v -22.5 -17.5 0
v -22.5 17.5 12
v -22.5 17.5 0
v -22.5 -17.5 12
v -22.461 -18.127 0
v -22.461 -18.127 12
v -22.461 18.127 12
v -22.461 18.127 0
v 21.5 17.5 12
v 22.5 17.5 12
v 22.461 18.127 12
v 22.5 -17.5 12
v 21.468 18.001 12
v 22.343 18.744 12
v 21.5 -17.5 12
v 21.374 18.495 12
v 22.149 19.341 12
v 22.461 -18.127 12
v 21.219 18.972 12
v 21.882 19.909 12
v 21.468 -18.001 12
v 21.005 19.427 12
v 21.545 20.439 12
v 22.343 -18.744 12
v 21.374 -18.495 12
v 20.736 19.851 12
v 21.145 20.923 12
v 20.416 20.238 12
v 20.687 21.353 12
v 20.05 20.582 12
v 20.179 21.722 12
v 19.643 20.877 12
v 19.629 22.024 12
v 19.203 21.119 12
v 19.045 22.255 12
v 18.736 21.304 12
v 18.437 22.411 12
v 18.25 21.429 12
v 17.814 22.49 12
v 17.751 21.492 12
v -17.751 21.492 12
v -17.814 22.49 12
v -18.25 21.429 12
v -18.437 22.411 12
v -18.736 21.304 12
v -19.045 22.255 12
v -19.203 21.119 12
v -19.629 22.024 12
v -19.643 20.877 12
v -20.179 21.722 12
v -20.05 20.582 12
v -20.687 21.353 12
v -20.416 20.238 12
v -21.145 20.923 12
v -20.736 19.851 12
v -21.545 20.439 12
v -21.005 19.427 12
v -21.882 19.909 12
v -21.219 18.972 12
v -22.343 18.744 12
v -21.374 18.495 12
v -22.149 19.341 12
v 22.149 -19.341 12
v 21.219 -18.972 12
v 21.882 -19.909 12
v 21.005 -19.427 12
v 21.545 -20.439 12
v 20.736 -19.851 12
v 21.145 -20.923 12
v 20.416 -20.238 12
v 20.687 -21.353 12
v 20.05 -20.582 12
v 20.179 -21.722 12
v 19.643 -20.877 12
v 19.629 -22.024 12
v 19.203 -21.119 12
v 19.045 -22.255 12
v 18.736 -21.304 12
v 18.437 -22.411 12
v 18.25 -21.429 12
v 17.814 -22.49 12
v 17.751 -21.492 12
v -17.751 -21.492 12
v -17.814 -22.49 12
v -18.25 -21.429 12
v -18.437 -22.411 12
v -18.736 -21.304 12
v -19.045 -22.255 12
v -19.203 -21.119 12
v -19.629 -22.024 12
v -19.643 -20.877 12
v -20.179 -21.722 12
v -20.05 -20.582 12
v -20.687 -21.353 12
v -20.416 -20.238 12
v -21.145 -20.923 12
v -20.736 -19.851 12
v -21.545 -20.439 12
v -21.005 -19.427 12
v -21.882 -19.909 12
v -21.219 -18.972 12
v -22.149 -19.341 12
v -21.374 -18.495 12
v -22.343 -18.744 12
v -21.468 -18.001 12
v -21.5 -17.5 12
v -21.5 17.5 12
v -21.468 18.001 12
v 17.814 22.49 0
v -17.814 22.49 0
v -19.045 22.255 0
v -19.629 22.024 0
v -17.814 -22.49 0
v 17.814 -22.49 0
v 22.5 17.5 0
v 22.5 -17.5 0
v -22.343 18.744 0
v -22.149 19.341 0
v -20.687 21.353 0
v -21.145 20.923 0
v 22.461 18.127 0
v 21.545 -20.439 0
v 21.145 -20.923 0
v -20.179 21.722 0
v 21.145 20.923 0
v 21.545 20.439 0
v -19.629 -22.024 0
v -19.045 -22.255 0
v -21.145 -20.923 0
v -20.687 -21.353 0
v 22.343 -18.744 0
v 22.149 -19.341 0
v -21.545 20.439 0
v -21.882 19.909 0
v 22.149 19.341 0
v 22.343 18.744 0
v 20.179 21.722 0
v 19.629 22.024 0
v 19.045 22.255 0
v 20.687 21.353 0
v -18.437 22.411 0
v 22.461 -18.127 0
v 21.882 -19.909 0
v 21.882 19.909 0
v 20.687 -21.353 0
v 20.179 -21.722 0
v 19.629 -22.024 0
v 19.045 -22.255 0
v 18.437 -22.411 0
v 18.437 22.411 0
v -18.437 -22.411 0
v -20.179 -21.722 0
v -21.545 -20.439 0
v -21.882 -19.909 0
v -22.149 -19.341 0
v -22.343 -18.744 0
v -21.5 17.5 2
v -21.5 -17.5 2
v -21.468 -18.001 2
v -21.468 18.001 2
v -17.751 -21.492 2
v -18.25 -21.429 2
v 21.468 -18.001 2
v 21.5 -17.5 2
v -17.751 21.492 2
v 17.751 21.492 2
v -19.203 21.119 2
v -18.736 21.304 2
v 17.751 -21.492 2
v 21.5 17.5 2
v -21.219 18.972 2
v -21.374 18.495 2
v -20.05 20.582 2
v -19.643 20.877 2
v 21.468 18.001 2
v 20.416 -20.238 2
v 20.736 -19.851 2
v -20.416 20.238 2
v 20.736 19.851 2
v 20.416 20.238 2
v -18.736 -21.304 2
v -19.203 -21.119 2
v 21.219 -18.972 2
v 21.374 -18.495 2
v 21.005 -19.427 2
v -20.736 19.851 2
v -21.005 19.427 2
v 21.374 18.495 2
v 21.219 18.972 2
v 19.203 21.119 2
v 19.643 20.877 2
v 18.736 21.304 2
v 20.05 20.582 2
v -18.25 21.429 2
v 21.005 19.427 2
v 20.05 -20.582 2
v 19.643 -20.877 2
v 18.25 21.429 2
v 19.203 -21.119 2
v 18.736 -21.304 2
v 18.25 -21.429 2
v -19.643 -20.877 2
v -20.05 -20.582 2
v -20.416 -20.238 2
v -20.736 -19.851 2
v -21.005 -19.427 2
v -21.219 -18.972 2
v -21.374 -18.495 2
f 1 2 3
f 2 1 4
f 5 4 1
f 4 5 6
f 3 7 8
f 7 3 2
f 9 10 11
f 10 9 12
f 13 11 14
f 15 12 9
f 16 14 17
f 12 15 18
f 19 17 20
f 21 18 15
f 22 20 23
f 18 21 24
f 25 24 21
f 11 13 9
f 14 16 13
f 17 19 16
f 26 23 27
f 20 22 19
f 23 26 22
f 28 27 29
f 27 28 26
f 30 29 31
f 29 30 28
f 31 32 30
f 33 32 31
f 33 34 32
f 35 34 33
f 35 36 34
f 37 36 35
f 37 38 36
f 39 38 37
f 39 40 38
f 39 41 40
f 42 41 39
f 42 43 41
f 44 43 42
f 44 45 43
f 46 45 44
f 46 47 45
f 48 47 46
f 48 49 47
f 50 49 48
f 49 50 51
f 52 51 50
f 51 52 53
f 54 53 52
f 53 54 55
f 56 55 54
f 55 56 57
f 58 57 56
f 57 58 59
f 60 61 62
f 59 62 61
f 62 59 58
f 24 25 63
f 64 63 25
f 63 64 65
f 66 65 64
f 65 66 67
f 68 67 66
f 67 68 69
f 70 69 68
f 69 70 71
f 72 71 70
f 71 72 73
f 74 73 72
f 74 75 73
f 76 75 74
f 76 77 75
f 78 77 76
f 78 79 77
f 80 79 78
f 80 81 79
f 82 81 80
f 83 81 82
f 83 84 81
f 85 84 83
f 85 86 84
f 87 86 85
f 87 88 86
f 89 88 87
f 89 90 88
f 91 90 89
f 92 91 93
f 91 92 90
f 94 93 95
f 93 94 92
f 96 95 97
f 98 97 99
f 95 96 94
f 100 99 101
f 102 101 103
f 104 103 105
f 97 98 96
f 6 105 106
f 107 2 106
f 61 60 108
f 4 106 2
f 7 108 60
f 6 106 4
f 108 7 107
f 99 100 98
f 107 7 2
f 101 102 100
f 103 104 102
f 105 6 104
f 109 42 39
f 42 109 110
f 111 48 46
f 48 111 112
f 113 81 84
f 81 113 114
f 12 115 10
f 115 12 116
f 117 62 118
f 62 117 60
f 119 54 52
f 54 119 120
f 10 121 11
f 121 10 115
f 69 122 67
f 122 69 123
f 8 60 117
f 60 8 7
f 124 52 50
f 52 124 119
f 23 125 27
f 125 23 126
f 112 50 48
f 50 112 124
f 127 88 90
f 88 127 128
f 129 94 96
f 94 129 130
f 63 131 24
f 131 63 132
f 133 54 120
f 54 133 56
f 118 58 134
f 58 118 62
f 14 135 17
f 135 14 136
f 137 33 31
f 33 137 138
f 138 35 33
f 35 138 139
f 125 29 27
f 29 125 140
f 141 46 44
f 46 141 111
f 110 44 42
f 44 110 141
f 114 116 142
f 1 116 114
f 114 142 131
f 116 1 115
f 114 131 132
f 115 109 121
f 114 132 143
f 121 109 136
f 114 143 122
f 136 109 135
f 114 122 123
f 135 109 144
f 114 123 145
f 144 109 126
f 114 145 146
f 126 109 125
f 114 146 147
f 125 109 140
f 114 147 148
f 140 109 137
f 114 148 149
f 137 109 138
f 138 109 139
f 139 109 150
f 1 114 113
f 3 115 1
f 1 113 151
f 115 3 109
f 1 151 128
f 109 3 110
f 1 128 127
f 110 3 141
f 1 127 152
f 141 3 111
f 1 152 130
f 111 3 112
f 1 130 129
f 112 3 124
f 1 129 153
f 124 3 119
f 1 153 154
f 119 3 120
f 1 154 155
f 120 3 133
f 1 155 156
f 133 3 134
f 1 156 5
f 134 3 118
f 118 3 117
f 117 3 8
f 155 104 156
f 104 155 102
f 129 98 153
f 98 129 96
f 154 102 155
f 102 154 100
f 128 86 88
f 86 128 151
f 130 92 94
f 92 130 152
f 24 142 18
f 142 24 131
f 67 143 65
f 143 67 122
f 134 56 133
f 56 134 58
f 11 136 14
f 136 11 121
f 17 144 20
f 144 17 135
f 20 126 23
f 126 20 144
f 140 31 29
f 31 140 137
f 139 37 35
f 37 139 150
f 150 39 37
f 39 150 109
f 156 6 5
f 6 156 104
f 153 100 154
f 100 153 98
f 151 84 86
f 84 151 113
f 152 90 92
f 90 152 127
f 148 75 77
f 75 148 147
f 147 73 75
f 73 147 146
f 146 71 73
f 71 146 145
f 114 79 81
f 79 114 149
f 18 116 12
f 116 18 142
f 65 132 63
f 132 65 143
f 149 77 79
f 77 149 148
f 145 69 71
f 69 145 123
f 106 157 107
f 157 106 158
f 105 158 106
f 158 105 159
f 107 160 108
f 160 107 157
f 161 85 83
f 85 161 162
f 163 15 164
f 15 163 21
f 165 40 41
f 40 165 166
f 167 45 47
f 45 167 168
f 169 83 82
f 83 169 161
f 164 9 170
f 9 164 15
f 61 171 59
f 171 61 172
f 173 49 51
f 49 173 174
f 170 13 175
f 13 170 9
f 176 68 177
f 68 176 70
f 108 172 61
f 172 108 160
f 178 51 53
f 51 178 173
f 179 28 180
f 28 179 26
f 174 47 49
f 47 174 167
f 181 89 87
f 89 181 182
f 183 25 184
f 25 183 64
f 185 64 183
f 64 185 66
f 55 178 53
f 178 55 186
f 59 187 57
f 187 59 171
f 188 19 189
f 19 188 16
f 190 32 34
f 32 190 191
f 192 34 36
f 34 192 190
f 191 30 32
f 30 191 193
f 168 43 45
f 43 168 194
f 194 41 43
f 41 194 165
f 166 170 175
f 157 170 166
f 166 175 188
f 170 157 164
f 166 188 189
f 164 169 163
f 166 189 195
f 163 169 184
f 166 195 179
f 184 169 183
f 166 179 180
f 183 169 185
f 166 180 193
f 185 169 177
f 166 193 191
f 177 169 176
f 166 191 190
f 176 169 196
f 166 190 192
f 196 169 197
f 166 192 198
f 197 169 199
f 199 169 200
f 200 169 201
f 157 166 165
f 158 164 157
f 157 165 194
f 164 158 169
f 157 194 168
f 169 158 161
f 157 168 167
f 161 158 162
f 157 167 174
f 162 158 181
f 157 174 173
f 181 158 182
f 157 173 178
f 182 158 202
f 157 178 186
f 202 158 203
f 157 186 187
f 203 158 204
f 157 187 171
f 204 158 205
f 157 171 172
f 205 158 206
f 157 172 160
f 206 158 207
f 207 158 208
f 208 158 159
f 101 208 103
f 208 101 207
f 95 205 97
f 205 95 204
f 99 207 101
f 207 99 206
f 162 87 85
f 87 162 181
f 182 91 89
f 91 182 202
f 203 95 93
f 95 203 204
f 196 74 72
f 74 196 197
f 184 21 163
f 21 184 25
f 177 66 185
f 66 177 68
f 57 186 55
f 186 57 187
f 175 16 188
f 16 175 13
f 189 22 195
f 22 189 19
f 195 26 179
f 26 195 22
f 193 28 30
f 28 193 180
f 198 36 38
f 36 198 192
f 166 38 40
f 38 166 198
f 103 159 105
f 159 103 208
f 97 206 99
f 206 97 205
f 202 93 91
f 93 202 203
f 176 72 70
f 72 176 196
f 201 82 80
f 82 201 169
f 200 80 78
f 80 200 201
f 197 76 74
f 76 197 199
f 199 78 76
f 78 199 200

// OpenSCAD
$fn = 50;


difference() {
	union() {
		hull() {
			translate(v = [-17.5000000000, 17.5000000000, 0]) {
				cylinder(h = 12, r = 5);
			}
			translate(v = [17.5000000000, 17.5000000000, 0]) {
				cylinder(h = 12, r = 5);
			}
			translate(v = [-17.5000000000, -17.5000000000, 0]) {
				cylinder(h = 12, r = 5);
			}
			translate(v = [17.5000000000, -17.5000000000, 0]) {
				cylinder(h = 12, r = 5);
			}
		}
	}
	union() {
		translate(v = [0, 0, 2]) {
			hull() {
				translate(v = [-17.5000000000, 17.5000000000, 0]) {
					cylinder(h = 10, r = 4);
				}
				translate(v = [17.5000000000, 17.5000000000, 0]) {
					cylinder(h = 10, r = 4);
				}
				translate(v = [-17.5000000000, -17.5000000000, 0]) {
					cylinder(h = 10, r = 4);
				}
				translate(v = [17.5000000000, -17.5000000000, 0]) {
					cylinder(h = 10, r = 4);
				}
			}
		}
	}
}
